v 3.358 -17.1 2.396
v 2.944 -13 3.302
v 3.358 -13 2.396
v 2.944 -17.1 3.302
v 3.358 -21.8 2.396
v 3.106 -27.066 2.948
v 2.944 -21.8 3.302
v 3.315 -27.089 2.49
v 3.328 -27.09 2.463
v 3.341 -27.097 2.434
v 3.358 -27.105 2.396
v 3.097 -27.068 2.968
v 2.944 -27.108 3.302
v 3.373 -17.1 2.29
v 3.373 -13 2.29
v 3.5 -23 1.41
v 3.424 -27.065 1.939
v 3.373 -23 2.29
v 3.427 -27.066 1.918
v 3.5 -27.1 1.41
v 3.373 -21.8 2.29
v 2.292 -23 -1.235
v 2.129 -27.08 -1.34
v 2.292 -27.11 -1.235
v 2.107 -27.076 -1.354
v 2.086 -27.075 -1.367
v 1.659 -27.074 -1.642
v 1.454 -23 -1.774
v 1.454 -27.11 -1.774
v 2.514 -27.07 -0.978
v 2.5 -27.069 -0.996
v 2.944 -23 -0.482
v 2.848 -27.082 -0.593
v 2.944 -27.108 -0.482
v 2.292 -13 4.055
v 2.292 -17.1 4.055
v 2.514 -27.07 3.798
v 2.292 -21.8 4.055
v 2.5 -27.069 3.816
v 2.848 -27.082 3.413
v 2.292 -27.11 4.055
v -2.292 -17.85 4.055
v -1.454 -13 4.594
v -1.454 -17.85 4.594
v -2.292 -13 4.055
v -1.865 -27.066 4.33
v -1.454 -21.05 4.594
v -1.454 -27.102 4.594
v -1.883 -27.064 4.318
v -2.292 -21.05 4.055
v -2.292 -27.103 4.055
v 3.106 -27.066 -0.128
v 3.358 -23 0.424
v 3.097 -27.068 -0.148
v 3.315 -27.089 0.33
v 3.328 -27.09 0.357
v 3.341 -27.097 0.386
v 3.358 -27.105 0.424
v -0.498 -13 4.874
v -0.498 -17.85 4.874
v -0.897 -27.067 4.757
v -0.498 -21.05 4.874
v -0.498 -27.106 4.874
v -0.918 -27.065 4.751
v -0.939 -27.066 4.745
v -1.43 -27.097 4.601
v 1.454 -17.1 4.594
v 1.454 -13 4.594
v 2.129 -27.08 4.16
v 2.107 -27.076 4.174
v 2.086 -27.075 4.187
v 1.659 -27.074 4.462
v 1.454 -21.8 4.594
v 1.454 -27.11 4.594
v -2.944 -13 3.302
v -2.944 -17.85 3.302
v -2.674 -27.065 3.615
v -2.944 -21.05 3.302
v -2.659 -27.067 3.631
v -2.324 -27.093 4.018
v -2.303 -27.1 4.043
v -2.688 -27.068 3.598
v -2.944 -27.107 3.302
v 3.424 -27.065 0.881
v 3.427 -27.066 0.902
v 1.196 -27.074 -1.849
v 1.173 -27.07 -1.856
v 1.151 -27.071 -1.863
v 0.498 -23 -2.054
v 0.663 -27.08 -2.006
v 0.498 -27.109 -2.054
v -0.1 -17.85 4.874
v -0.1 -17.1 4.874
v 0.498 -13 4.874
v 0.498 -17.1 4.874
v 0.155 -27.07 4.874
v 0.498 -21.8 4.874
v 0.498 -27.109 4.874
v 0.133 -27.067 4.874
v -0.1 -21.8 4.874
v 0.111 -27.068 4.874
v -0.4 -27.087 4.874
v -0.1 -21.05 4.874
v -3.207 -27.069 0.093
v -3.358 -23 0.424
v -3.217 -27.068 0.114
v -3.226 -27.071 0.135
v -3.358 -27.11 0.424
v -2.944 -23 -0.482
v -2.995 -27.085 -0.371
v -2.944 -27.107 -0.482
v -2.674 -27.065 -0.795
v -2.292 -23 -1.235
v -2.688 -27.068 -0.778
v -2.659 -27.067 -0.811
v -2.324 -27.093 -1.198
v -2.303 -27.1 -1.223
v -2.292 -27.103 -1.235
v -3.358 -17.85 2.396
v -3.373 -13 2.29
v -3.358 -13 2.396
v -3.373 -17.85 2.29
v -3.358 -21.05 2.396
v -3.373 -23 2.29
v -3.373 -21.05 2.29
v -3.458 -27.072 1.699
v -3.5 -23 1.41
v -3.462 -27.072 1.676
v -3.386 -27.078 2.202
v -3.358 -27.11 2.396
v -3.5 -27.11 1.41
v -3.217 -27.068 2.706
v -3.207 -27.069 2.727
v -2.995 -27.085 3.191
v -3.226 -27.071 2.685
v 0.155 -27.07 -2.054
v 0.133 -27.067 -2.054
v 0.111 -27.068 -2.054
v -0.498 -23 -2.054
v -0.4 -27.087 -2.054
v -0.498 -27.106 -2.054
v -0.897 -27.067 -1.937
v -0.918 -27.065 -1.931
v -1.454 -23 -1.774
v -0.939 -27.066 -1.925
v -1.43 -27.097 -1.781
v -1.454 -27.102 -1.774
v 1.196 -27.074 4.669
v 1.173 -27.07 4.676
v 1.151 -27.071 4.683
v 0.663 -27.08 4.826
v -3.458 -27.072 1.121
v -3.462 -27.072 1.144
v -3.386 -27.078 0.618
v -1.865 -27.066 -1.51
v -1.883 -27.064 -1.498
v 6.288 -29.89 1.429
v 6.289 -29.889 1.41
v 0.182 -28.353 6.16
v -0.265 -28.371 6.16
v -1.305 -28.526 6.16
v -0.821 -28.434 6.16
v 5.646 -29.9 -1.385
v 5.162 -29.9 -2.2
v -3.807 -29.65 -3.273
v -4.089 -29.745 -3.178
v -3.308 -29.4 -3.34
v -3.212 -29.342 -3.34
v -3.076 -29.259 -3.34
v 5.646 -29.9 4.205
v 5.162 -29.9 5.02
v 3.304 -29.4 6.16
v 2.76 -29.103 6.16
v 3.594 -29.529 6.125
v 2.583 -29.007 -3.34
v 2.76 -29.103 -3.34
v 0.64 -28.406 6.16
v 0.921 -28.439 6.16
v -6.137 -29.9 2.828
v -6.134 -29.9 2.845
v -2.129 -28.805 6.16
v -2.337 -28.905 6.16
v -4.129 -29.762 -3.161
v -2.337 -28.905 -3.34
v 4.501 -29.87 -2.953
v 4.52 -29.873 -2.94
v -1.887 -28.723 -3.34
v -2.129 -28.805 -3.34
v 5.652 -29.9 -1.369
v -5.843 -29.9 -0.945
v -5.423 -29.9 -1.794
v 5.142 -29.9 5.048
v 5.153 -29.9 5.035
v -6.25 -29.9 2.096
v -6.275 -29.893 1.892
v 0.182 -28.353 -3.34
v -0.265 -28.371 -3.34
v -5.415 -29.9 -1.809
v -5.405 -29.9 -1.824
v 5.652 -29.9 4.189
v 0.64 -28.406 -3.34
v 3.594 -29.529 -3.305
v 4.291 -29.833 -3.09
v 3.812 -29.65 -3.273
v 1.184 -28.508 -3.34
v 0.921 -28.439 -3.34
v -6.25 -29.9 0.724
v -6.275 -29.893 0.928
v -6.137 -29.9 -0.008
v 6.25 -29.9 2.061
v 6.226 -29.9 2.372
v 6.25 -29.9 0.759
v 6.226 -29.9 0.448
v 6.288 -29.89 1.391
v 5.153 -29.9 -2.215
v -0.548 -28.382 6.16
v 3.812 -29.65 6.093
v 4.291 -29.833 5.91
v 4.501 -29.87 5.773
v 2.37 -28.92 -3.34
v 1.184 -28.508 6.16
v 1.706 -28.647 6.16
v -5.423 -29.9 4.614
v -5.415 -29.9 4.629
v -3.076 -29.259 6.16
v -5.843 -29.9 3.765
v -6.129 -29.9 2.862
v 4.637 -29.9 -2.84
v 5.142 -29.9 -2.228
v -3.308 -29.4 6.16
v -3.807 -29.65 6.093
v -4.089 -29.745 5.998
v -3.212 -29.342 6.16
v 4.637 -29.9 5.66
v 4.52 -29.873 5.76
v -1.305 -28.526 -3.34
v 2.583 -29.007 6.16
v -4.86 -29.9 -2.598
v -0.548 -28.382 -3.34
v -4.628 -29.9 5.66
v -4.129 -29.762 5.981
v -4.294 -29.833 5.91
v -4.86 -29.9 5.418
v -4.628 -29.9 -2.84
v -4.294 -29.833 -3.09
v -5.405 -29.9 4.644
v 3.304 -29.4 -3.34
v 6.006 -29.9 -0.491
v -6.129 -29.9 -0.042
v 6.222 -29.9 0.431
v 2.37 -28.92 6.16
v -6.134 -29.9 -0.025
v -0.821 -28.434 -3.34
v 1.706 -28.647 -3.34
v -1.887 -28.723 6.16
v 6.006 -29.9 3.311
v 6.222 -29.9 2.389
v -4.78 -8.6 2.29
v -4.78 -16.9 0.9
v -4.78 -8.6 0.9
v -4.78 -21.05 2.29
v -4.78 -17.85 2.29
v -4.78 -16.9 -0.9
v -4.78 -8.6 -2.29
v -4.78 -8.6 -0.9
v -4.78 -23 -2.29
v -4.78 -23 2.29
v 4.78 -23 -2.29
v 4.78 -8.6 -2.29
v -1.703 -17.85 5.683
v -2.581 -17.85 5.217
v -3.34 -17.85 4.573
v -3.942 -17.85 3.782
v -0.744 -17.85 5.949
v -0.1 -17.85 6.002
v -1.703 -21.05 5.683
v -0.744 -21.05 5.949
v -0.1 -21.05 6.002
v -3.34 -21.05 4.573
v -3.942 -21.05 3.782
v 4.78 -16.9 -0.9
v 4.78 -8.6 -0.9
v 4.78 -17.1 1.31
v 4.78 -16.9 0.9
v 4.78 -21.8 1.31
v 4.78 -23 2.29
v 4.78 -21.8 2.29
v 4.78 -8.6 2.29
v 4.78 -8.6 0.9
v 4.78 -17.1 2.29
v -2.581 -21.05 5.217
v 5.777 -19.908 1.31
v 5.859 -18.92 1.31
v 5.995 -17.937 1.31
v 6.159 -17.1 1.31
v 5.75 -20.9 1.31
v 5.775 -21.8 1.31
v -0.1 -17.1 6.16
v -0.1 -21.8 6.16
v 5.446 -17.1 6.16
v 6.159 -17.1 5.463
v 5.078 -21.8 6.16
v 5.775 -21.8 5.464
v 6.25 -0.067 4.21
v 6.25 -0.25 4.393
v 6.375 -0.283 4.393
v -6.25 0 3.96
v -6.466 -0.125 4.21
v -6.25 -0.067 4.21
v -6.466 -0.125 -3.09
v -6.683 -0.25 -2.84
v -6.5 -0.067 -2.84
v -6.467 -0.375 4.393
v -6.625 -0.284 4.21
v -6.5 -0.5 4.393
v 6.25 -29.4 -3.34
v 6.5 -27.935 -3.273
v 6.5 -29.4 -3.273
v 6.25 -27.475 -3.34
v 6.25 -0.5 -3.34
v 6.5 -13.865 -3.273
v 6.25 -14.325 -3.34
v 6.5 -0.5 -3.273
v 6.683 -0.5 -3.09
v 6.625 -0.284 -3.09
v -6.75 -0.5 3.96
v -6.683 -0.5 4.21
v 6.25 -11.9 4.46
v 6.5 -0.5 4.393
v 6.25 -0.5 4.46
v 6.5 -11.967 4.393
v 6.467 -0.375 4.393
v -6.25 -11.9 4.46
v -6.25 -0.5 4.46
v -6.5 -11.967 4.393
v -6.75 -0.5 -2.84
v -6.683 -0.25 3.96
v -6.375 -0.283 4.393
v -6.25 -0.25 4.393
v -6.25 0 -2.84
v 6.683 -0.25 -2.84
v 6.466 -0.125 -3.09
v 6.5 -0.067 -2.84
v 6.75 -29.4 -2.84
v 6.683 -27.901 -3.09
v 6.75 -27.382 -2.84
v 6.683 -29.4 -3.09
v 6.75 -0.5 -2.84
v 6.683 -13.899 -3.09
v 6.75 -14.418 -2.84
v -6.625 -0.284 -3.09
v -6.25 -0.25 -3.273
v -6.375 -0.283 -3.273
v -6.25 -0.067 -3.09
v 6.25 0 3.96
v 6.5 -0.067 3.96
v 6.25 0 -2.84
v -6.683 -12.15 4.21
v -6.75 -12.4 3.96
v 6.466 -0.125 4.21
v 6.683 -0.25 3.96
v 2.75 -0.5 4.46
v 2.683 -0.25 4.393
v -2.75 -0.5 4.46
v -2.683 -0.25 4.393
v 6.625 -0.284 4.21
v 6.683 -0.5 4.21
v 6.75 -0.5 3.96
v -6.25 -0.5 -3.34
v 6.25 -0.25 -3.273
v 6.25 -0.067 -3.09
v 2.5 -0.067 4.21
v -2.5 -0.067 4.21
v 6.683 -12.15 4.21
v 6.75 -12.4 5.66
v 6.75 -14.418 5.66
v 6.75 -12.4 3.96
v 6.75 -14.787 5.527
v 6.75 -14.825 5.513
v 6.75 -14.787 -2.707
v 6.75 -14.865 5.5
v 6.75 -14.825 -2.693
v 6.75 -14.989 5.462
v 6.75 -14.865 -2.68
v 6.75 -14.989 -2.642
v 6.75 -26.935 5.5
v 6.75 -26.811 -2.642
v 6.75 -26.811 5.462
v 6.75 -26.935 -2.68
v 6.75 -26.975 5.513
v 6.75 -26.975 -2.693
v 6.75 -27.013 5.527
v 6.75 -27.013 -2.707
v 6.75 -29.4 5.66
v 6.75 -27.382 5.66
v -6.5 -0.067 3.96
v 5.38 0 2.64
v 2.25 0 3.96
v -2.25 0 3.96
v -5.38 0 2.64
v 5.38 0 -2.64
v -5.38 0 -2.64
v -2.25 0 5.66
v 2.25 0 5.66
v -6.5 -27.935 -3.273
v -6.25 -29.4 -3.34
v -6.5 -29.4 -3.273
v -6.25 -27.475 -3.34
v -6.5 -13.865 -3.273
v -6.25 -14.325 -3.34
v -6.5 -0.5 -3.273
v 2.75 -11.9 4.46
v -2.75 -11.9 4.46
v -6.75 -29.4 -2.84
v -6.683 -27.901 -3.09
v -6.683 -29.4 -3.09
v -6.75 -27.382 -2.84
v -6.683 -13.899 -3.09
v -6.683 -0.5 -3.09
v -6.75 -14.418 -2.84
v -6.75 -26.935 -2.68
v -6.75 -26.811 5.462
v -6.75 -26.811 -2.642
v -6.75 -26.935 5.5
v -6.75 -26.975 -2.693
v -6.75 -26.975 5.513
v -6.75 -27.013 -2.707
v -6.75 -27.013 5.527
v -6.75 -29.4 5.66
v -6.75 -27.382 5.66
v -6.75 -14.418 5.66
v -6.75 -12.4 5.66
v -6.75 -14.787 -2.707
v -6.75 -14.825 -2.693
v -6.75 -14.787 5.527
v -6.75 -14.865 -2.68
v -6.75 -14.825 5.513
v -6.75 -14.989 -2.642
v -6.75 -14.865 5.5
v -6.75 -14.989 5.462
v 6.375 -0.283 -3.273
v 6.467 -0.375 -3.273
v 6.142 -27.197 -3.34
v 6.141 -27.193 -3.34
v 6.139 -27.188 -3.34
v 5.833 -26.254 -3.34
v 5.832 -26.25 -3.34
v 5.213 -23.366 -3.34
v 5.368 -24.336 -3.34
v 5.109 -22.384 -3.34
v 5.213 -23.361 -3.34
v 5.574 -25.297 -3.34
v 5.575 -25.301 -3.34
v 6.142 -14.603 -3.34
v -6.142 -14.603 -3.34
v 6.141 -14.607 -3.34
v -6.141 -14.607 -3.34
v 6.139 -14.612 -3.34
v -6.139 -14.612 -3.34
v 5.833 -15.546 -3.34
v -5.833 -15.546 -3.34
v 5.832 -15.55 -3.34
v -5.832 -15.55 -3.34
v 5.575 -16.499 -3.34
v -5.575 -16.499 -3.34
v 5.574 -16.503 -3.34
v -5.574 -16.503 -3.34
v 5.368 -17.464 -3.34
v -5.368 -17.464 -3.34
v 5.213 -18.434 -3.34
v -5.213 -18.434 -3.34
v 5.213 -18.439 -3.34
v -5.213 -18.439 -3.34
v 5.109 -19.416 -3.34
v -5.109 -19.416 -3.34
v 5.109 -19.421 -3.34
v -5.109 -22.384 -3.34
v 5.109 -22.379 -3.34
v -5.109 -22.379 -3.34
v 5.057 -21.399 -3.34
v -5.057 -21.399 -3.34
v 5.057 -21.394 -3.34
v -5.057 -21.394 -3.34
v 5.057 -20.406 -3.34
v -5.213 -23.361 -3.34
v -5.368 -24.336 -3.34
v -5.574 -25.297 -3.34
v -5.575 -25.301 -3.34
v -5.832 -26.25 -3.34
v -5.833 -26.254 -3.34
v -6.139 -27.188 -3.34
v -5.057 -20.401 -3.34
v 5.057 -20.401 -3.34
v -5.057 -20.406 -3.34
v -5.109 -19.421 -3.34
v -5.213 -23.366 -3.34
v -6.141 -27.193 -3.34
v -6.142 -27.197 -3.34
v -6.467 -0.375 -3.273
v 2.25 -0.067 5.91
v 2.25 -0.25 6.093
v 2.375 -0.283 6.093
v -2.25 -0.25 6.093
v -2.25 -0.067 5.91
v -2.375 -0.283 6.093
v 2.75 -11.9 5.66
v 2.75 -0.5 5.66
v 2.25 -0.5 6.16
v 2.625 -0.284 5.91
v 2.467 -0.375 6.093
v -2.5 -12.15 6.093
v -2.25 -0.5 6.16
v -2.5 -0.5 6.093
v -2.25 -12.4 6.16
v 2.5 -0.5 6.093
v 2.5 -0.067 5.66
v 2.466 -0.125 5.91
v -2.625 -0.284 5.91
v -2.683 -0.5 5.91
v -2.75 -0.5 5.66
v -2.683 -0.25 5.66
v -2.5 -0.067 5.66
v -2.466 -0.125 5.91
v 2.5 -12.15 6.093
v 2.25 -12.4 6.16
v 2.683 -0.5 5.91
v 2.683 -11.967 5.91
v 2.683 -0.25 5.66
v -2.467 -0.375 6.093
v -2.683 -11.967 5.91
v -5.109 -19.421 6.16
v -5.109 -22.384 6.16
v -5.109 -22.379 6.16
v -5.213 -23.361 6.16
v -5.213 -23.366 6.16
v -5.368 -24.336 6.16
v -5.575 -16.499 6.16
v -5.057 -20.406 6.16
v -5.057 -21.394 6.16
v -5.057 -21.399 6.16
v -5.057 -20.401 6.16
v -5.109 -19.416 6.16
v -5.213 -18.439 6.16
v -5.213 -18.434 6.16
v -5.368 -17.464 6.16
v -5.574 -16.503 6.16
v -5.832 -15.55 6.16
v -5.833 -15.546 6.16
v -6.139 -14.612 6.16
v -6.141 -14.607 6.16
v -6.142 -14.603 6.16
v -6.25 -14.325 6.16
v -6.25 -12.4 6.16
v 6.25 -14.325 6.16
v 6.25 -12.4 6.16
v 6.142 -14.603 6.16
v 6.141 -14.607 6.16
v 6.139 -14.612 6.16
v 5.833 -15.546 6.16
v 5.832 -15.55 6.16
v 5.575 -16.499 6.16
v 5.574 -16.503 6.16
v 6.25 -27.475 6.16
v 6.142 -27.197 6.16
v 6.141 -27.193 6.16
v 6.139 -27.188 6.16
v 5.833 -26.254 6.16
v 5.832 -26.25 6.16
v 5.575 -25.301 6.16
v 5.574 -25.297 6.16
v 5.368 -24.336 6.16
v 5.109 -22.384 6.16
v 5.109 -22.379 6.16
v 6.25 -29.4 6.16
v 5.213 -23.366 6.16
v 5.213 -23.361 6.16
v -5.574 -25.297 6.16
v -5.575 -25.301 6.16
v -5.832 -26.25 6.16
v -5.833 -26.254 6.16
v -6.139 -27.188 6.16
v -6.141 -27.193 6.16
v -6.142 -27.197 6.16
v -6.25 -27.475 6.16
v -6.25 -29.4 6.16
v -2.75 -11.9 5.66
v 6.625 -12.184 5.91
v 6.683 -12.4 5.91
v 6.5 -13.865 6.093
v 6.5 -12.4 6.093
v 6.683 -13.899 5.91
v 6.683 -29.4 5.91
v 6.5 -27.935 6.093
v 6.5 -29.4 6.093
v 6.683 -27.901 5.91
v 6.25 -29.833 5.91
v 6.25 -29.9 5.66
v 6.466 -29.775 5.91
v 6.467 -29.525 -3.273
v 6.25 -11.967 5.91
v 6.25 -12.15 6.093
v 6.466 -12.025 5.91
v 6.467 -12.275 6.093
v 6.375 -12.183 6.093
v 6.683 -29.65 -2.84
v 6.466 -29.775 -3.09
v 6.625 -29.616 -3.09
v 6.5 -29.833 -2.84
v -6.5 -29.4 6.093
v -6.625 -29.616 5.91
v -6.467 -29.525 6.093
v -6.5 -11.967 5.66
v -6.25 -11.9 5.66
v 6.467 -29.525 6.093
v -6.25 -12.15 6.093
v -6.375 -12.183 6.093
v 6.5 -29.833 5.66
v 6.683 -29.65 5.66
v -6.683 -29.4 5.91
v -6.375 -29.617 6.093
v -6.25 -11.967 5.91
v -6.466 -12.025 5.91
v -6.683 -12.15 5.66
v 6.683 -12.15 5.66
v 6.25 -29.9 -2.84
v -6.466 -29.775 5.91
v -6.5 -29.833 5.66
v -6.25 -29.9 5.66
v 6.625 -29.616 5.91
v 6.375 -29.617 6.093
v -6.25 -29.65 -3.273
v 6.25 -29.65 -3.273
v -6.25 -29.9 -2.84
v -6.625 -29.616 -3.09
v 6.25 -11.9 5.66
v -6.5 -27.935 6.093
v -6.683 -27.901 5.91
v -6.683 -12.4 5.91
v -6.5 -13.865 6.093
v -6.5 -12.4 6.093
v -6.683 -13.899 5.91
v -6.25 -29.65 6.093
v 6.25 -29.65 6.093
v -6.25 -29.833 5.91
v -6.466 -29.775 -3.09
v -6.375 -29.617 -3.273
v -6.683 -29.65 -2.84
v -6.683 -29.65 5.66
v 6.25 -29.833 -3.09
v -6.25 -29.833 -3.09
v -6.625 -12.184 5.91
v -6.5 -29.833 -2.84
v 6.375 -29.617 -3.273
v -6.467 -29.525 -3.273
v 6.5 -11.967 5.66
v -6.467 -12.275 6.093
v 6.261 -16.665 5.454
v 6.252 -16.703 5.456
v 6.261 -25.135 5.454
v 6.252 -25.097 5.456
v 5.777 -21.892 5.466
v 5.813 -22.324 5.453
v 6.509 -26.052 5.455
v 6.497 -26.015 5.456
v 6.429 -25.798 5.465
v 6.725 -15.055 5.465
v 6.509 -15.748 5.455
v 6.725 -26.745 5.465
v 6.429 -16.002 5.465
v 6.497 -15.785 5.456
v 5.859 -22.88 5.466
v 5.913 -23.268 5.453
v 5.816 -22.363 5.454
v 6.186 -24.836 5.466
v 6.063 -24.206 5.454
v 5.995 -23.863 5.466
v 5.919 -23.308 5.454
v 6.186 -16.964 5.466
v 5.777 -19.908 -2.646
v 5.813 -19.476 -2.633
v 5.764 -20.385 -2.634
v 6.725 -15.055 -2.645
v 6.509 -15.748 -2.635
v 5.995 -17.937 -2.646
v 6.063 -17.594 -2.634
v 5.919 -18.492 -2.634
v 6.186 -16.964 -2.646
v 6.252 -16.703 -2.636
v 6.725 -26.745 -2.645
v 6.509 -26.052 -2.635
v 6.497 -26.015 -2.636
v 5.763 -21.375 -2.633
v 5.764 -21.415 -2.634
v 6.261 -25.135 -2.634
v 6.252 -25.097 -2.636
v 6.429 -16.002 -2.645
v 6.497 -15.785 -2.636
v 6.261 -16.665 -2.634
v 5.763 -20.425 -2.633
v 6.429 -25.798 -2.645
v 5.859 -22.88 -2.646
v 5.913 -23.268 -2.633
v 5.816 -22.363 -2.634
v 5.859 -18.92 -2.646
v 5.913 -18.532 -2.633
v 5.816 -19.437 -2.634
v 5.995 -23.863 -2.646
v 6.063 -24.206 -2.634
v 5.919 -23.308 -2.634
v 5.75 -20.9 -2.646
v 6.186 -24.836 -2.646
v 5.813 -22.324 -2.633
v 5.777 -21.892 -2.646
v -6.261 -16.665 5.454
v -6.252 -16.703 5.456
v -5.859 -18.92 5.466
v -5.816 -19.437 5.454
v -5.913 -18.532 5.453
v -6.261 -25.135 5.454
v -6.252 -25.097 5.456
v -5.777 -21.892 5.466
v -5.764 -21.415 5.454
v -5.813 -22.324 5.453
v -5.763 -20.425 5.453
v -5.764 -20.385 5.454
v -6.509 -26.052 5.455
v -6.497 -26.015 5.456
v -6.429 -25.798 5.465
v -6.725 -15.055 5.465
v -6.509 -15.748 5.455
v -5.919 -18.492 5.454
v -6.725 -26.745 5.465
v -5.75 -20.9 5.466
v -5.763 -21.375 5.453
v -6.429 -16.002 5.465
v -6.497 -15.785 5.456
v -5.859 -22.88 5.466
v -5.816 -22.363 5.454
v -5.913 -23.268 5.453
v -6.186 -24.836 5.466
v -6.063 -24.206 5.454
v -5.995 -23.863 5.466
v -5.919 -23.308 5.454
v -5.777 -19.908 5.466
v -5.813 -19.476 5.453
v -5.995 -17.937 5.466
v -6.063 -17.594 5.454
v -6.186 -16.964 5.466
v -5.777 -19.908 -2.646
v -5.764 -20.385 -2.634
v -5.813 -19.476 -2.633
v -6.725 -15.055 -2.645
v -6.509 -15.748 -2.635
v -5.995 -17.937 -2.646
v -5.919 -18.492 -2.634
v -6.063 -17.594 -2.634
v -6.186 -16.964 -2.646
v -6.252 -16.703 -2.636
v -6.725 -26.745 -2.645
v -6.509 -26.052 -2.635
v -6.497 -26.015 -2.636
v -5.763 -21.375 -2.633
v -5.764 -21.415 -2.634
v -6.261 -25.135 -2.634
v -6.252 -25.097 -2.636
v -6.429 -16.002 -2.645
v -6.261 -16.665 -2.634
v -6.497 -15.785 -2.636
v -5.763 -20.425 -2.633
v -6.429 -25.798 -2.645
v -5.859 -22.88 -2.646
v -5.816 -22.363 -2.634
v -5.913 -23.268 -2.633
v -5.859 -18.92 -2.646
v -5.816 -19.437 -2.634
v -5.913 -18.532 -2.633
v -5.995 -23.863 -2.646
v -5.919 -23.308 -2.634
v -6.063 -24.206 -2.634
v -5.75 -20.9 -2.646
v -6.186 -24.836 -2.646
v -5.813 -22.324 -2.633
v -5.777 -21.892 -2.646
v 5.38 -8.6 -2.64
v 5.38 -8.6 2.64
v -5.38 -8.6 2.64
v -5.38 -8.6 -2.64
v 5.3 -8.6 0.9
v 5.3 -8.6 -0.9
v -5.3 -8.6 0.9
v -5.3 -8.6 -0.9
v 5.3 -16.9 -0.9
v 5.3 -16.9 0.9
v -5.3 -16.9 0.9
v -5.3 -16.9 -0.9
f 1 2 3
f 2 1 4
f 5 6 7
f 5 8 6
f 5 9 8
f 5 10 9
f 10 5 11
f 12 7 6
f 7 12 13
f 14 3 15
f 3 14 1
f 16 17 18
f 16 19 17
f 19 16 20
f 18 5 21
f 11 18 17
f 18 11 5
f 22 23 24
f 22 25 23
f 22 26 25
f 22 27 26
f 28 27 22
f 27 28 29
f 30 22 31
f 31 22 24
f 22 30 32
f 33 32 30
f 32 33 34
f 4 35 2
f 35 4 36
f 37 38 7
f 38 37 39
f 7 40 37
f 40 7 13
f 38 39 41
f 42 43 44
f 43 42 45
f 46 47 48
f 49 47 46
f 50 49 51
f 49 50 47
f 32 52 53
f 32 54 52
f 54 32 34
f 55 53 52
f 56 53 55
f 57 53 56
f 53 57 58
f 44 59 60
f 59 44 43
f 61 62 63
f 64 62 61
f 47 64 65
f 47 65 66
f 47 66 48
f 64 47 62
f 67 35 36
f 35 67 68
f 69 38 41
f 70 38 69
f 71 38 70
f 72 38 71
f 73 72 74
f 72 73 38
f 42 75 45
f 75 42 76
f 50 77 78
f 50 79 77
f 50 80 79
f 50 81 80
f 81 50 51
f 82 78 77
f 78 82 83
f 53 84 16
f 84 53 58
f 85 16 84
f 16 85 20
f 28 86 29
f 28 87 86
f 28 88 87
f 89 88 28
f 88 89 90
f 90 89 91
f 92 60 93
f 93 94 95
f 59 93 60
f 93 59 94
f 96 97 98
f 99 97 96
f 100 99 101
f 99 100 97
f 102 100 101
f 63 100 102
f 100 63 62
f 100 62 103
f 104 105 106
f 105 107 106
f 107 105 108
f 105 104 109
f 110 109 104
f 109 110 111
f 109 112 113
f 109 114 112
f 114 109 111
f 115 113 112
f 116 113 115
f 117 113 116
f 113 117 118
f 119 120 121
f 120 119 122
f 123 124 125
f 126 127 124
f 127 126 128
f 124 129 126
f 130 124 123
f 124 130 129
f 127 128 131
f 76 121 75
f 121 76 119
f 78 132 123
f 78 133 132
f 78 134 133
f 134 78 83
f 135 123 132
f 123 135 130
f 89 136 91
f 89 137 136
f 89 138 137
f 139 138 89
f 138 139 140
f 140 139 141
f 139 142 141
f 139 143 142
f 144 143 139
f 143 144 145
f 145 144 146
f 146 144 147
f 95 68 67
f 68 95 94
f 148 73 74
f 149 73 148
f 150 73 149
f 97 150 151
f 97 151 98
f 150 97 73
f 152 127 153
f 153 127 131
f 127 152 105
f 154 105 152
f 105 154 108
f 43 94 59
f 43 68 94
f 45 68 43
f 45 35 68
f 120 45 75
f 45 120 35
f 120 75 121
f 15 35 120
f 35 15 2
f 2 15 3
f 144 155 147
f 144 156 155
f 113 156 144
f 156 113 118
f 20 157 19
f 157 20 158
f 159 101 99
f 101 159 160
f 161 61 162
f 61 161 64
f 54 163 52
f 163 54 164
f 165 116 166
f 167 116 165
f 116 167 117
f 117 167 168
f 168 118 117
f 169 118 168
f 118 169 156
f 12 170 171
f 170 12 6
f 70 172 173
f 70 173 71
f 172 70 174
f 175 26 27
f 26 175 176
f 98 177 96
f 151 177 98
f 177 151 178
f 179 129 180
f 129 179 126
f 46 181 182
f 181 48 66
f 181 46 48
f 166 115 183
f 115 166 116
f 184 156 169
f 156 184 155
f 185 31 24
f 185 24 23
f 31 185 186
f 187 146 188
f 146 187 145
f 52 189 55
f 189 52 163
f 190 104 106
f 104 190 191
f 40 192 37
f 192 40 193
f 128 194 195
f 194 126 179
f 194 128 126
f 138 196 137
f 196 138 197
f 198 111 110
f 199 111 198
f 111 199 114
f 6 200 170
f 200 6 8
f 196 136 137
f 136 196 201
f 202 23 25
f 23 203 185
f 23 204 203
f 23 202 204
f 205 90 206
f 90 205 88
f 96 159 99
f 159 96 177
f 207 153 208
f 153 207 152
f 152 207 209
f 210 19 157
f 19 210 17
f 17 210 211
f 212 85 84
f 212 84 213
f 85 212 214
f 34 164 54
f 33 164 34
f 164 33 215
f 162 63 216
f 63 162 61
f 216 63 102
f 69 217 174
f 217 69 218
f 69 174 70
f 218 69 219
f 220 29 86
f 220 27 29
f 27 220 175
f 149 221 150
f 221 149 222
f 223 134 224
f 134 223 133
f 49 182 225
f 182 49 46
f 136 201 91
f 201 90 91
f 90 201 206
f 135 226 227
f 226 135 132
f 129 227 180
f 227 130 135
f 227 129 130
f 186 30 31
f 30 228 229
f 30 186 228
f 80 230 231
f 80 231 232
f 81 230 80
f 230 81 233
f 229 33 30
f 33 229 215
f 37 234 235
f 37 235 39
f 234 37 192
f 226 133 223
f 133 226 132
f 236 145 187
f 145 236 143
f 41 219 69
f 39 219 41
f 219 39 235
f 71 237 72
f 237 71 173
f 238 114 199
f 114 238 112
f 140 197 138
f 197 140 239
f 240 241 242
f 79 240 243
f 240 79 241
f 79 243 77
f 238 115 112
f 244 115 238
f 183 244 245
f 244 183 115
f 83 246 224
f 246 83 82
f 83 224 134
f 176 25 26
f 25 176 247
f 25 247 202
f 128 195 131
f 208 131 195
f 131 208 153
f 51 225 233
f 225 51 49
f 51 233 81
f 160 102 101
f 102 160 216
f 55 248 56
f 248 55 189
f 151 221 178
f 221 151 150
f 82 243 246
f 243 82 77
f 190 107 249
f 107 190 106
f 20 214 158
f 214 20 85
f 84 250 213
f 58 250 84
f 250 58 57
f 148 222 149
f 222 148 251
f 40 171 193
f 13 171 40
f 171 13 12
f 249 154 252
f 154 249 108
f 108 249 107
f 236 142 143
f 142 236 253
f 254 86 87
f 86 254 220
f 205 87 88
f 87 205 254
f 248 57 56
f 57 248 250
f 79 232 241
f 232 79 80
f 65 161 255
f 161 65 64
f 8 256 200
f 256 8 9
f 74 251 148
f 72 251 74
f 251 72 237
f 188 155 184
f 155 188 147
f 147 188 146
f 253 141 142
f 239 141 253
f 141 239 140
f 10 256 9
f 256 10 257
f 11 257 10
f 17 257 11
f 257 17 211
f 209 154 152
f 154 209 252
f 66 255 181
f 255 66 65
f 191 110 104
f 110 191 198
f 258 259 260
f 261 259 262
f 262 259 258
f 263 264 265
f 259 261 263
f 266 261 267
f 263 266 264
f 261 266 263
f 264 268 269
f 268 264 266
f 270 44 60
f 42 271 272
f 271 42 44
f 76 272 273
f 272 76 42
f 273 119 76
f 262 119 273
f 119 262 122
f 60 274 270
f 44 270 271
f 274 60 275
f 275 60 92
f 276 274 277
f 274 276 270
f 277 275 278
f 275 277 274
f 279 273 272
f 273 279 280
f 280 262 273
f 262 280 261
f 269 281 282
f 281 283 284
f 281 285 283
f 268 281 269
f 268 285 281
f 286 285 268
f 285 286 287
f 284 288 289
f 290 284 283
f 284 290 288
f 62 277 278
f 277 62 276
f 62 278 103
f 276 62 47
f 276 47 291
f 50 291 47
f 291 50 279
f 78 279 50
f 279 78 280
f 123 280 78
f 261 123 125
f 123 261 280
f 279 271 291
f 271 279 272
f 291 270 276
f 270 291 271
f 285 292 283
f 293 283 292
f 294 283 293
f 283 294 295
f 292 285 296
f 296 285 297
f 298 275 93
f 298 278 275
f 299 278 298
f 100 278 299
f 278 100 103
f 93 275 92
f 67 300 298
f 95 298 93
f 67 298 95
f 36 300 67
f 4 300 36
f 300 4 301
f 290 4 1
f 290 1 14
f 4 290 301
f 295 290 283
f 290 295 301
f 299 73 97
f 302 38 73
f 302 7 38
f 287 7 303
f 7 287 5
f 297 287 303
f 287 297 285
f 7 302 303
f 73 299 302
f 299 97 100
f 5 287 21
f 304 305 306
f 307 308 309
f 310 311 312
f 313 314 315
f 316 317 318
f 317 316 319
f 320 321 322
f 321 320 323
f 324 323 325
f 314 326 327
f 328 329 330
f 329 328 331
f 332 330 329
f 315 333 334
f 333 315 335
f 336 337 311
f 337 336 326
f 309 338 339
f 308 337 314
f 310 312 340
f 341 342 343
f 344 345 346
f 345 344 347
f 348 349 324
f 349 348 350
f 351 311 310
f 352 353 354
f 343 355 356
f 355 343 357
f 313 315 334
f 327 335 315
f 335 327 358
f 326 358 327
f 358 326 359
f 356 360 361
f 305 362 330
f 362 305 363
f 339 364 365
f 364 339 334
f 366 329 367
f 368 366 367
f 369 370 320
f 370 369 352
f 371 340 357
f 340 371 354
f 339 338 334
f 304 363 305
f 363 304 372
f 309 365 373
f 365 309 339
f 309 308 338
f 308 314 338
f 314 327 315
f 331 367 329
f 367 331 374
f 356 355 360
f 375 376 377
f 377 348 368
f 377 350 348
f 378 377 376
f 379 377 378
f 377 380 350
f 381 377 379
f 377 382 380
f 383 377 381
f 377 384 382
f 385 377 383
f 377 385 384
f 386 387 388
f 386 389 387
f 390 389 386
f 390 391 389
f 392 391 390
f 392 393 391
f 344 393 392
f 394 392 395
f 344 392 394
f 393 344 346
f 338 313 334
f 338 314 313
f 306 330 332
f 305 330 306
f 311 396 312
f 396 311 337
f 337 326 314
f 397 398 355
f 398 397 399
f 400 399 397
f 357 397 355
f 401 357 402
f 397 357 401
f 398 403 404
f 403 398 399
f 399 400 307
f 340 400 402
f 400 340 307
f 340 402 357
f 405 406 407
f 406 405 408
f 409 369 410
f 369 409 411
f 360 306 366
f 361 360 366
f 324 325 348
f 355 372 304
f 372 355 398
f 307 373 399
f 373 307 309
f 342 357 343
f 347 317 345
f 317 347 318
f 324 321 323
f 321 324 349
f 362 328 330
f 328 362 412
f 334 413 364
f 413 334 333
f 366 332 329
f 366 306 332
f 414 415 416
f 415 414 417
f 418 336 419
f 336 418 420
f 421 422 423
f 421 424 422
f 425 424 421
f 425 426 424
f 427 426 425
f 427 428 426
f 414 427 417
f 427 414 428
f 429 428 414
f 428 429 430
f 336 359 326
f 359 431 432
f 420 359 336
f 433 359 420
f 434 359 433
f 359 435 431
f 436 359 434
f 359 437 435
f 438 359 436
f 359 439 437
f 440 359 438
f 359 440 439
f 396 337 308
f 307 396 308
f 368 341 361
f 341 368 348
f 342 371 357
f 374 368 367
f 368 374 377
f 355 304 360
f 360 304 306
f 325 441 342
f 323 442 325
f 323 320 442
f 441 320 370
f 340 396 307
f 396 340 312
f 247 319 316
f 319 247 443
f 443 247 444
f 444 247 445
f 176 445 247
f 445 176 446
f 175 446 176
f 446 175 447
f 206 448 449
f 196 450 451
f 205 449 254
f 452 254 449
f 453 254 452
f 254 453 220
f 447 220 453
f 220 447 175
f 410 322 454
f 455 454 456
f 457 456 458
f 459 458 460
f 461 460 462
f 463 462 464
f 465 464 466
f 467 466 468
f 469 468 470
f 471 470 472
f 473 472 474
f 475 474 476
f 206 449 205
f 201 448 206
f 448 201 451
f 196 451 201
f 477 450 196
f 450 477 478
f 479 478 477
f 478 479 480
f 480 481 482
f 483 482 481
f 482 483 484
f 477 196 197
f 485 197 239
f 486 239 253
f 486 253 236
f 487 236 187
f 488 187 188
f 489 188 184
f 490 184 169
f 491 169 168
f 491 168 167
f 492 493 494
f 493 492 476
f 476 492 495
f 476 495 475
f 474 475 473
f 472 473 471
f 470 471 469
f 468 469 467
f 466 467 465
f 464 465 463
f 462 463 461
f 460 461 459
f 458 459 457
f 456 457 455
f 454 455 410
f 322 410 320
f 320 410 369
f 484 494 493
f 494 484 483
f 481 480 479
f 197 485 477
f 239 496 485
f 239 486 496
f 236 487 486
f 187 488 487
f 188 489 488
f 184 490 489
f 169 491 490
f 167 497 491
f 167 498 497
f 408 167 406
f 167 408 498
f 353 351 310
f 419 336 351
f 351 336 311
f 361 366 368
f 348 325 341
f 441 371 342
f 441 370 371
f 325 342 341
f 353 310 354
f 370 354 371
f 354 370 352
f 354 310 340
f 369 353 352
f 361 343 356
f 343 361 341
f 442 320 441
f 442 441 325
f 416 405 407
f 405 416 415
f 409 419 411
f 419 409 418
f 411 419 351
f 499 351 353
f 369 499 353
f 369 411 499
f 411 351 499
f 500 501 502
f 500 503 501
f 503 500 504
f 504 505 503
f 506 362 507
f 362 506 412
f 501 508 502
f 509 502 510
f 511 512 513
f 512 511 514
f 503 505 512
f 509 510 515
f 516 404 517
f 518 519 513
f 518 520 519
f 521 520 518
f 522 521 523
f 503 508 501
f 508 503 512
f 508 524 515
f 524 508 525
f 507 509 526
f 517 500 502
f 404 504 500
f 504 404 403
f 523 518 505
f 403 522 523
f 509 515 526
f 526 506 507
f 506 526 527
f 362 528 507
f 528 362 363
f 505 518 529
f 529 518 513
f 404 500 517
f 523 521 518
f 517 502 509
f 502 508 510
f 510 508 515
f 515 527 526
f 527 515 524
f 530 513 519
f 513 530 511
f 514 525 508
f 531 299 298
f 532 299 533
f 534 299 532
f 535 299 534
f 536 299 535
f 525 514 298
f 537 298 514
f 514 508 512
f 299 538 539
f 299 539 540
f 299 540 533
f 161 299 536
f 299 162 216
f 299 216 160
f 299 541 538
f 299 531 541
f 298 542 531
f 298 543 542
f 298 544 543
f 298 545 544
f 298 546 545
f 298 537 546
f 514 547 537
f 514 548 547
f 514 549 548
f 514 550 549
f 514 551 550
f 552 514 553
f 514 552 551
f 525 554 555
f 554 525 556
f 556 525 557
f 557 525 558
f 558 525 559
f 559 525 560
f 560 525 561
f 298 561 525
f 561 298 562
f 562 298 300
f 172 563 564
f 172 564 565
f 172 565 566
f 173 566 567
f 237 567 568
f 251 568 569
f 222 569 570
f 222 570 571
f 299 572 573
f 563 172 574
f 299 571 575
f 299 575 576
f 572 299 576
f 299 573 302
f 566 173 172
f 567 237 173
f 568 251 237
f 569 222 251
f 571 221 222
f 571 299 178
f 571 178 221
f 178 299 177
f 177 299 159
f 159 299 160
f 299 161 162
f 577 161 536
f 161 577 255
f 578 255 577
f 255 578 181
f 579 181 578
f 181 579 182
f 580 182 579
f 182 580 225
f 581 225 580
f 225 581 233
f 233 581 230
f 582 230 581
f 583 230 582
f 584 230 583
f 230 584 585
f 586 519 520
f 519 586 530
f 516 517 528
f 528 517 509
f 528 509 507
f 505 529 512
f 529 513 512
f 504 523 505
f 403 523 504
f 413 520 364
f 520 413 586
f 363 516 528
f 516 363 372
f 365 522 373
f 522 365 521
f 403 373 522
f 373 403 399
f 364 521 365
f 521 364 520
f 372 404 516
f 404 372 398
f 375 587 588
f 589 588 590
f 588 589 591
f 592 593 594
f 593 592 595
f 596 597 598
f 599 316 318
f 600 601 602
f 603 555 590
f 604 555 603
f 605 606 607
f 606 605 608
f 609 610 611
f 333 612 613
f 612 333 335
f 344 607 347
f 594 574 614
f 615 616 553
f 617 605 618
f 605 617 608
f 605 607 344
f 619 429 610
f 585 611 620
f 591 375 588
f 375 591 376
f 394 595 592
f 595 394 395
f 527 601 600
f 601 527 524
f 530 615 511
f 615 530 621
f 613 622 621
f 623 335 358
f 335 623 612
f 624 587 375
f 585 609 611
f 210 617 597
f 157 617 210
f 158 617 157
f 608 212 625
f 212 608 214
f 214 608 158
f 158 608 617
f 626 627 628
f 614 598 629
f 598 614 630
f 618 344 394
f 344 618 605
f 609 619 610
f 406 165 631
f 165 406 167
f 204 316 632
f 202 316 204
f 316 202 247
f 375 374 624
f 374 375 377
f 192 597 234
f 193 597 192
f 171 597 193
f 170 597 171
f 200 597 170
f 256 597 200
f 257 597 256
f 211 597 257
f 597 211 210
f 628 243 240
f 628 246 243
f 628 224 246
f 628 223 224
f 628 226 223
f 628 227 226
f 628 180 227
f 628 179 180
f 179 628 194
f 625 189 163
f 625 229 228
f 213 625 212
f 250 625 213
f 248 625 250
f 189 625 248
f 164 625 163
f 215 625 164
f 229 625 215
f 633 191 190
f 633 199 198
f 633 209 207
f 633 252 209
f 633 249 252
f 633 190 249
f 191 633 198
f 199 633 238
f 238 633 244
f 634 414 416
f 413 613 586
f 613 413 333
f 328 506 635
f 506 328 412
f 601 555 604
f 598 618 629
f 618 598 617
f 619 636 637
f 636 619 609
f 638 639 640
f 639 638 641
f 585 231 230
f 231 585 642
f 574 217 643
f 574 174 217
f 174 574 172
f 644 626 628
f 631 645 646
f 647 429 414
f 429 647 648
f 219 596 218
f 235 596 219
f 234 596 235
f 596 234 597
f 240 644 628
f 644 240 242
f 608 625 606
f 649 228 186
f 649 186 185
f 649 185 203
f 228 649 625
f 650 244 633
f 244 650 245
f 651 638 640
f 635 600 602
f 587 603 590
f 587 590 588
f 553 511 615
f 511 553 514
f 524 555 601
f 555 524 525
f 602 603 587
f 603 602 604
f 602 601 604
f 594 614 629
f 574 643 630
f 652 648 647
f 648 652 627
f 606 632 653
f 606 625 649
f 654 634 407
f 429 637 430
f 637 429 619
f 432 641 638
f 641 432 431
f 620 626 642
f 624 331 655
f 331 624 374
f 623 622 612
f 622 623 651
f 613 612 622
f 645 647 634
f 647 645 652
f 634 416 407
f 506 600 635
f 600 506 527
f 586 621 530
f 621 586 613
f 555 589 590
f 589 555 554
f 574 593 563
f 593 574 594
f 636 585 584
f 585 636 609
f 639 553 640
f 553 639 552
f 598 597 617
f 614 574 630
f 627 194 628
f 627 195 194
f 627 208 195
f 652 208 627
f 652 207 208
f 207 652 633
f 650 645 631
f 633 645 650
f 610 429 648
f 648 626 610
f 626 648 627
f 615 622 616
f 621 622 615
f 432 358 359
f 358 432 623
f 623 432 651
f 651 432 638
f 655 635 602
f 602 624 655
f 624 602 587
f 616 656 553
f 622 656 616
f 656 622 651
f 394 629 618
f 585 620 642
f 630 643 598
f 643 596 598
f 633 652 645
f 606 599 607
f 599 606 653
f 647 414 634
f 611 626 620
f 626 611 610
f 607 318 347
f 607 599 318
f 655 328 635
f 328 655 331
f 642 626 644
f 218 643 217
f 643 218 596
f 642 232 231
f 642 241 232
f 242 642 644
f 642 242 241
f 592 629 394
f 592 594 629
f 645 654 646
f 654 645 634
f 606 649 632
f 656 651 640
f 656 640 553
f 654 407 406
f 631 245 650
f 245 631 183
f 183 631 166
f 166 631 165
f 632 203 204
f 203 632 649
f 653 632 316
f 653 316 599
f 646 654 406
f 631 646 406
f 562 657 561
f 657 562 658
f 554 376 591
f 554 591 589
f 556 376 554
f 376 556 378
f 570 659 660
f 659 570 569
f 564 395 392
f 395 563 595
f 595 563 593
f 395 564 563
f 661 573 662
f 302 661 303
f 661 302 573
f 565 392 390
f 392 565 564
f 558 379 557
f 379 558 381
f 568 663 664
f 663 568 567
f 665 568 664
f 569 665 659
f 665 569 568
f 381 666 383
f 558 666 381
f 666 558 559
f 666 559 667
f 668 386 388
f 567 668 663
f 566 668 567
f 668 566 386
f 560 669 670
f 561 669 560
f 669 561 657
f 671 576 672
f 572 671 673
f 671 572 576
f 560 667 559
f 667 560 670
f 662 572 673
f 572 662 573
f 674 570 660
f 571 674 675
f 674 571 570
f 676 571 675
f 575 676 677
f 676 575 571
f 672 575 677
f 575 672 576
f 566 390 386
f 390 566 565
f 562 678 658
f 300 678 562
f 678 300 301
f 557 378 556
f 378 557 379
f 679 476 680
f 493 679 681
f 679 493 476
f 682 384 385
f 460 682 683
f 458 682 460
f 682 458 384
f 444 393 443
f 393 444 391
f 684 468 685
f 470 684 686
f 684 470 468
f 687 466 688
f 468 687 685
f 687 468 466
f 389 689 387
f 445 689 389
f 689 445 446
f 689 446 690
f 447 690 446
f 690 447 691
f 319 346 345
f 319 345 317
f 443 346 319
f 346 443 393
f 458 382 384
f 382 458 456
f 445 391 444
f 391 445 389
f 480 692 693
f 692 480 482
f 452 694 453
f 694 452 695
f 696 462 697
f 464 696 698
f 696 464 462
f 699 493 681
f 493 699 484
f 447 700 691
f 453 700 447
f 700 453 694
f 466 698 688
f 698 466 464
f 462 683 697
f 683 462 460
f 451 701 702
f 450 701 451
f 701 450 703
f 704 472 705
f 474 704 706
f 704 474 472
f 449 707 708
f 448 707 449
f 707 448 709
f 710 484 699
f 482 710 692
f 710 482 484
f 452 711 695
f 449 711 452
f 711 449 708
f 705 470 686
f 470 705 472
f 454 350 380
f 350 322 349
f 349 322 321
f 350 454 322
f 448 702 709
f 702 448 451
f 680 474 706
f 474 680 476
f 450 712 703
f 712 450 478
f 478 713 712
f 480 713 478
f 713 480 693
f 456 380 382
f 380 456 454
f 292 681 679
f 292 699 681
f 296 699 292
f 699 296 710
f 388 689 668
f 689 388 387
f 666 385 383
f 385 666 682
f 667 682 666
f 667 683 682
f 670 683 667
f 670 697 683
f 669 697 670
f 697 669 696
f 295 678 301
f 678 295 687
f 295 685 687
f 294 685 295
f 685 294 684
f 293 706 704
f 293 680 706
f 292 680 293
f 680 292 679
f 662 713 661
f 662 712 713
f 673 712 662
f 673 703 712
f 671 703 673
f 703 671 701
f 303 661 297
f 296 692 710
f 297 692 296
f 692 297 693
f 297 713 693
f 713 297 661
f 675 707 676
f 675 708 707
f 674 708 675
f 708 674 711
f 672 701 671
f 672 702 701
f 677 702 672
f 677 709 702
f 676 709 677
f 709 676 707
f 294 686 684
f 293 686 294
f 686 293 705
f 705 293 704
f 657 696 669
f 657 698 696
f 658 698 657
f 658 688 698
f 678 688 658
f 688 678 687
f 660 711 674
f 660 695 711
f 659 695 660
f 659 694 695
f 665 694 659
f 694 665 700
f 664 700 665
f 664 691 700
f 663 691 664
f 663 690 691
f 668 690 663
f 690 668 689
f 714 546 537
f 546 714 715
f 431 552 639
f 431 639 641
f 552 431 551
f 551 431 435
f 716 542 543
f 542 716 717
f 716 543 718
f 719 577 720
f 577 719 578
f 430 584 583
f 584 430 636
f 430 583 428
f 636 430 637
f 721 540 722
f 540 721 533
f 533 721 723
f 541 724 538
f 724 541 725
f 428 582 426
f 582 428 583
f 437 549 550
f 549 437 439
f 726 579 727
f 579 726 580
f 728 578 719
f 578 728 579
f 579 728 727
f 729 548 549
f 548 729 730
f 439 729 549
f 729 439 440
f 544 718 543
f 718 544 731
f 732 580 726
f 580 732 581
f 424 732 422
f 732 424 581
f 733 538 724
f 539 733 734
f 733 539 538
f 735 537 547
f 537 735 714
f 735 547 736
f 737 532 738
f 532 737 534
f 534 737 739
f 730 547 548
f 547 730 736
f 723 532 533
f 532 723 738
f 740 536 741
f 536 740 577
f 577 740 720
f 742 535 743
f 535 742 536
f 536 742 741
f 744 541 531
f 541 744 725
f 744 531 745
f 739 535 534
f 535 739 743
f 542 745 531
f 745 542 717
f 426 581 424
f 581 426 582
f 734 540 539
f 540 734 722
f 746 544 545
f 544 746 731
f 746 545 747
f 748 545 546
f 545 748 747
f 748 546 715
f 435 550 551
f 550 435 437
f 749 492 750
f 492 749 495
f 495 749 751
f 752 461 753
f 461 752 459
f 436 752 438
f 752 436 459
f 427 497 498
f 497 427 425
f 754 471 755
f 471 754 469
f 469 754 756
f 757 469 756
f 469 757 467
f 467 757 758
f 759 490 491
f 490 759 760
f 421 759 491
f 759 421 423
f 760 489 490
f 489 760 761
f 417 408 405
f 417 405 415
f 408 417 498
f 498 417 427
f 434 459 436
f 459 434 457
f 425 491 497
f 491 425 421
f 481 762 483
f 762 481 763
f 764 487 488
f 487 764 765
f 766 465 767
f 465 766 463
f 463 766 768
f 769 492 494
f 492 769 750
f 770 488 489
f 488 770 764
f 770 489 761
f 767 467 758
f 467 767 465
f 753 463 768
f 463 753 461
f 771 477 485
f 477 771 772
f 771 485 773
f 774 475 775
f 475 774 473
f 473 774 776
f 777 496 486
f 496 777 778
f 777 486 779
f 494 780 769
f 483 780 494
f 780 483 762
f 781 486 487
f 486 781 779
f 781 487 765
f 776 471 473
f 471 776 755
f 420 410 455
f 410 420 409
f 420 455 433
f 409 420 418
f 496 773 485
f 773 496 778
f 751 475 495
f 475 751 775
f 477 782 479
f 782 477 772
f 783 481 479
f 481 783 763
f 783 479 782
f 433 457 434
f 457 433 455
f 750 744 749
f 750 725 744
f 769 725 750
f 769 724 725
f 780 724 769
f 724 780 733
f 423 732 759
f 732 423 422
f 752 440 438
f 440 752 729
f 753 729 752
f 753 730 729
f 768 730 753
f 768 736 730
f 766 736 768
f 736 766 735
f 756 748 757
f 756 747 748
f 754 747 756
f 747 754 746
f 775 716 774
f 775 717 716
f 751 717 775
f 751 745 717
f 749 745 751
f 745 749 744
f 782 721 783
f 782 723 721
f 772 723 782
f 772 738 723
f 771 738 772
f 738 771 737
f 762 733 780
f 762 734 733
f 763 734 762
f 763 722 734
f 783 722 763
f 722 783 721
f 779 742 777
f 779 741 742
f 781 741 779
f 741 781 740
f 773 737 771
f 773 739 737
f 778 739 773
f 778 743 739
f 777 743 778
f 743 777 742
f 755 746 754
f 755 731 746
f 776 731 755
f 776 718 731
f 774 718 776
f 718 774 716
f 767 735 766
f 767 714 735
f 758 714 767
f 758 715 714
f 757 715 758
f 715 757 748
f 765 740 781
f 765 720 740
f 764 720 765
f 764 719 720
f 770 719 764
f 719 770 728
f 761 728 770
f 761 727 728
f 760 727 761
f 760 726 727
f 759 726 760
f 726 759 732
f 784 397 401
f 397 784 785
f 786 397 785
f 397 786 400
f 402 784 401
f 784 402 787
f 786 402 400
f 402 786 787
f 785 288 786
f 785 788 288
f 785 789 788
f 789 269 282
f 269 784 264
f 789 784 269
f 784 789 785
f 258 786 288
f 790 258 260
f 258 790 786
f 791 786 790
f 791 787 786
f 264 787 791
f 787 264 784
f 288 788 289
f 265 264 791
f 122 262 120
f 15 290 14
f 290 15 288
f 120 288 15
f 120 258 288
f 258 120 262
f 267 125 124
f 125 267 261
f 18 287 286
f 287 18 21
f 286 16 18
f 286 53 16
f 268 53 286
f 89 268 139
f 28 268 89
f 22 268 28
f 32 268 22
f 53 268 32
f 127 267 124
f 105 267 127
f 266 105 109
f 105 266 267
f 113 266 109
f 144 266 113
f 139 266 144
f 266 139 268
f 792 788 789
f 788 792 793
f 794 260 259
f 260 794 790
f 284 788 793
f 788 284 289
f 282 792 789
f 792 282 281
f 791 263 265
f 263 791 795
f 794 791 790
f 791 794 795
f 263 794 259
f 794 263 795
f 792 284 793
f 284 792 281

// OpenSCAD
// file: handy.scad
// b.kenyon.w@gmail.com - handy box
// fillets and handy things made from fillets

/*
   screw_post(h=10,od=6,id=3,fr=2,ch=0,o=0)

     cylindrical screw post with filleted base

     h = height
     od = main cylinder OD
     id = screw hole ID - default no hole
     fr = base fillet radius
     ch = screw hole chamfer depth - default no chamfer
     o = fillet ID shrink offset - usually unset

   rounded_cube(w=60,d=40,h=20,rh=2,rv=1,t=0)

     cube with rounded corners, optionally hollow

     w = width
     d = depth
     h = height
     rh = horizontal radius
     rv = vertical radius
     t = wall thickness - if set, makes a hollow box

   fillet_polar(o=false,R=1,r=1,A=90,a=90,as=0)

     creates both internal and external radial fillets
     used to create screw_post() and rounded_cube()
  
     o = outside true/false - default false (inside/concave)
     R = big radius
     r = small radius
     A = big angle
     a = small angle
     as = small angle start angle

   fillet_linear(o=false,l=1,r=1,a=90)
   
     o = outside - true/false - default false (inside/concave)
     l = length
     r = radius
     a = angle

*/

//$fs = 0.5;
//$fa = 1;
//$fn = 96;
//$fn = 72;
//$fn = 36;
//$fn = 12;

// examples:
//translate([60,0,0]) screw_post(h=10,od=6,id=3,fr=2,ch=0.6);
//difference() { rounded_cube(w=70,d=55,h=25,rh=3,rv=1,t=2); translate([0,-40,0]) cube([40,40,20]); }
//difference() { rounded_cube(w=70,d=55,h=25,rh=3,rv=1); translate([0,-40,0]) cube([40,40,20]); }
//fillet_linear(l=40);
//fillet_polar(R=2,r=1);

module screw_post(h=10,od=6,id=0,fr=2,o=0,ch=0) {
 x = (o) ? o : ($fn>=3) ? 0 : 0.025;
 difference() {
  union(){
   translate([0,0,h/2]) cylinder(h=h,d=od,center=true);
   translate([0,0,fr+x]) fillet_polar(R=-od/2+x,r=fr+x,A=360,as=90);
  }
  if(id>0) {
   translate([0,0,h/2]) cylinder(h=h+0.1,d=id,center=true);
   if(ch) translate([0,0,h-id/2-ch]) cylinder(h=od/2,d1=0,d2=od);
  }
 }
}

module rounded_cube(w=60,d=40,h=20,rh=2,rv=1,t=0) {
  if(t) difference() {
   _hbrc(w=t+w+t,d=t+d+t,h=t+h+t,rh=rh+t,rv=rv+t);
   _hbrc(w=w,d=d,h=h,rh=rh,rv=rv);
  }
  else _hbrc(w=w,d=d,h=h,rh=rh,rv=rv);
}

module _hbrc(w=60,d=40,h=20,rh=2,rv=1) {
 hull() {
  mirror_copy([0,0,1])
   mirror_copy([0,1,0])
    mirror_copy([1,0,0])
     translate([w/2-rh,d/2-rh,h/2-rv])
      fillet_polar(o=true,R=rh,r=rv);
 }
}

module fillet_polar(o=false,R=1,r=1,A=90,a=90,as=0) {
 rotate_extrude(angle=A)
  translate([R-r,0,0])
   rotate([0,0,-as])
    _hbf(o,r,a);
}

module fillet_linear(o=false,l=1,r=1,a=90) {
 linear_extrude(height=l,center=false)
  _hbf(o,r,a);
}

// D or bathtub shaped cube with 2 corners rounded
module D (w=10,d=10,h=1,r=2) {
  hull() {
   translate([0,r/2,0])
    cube([w,d-r,h],center=true);
   mirror_copy([1,0,0])
    translate([w/2-r,-d/2+r,0])
     cylinder(h=h,r=r,center=true);
  }
}

module _hbf(o=false,r=1,a=90) { // 2d fillet
 if(o) intersection() { circle(r=r); _hbw(r=r,a=a); }
 else difference() { _hbw(r=r,a=a); circle(r=r); }
}

module _hbw (r=1,a=90) { // 2d wedge polygon
  polygon([ [0,0], [0,r], [r*tan(a/2),r], [r*sin(a),r*cos(a)] ]);
}

module mirror_copy(v) {
 children();
 mirror(v) children();
}
// main file
/*
 * Plug housing for TPDD_Cable
 * v001
 */

t = 2.54; // tenth inch
o = 0.1;  // overlap / overcut
fc = 0.1; // fitment clearance 0.1 for SLS, 0.2 for FDM
w = 0.8;  // min wall
cr = 0.5; // corner radii
$fa = 1;
$fs = 1;

ph = 1.6;  // pcb thickness
pw = 10.4; // pcb width
psl = 8.5;  // pcb slot length, starting at id

owl = 13.5;    // outer width low, horzontal part width
ohl = 7.8;     // outer height low, horizontal part height
owh = 5.5;     // outer width high, vertical part width
ohh = 9.5;     // outer height high, vertical part height
plug_len = 12; // length of keyed part - automatically adjusted +1 if handle (hh) is taller than plug (ohh)
iw = t*4+0.4;  // inner width, width of 2x4 connector
ih = t*2;      // inner height, height of 2x4 connector
id = 8.5;      // inner depth, depth of 2x4 connector

ohb = ih/2+ph/2;   // outer height bottom, 0 to exterior floor

hew = 0;           // handle extra width
heh = hew;         // handle extra height
hw = hew+owl+hew ; // handle width
hd = 18;           // handle depth

// Different parametric relationships
// between the cable, handle, pcb, and connector.

// -- option 1 ------
// * handle height based on vertical key height
// * cable center based on pcb
// neither handle adjusts to cable nor cable adjusts to handle
// cable is allowed to be off-center
//hh = ohh+hew;   // handle height
//hz = hh/2-ohb;  // handle center Z
//cd = 6;         // cable diam, including heat shrink
//cz = cd/2+ph/2; // cable bottom at pcb top
// --------------

// -- option 2 ------
// * handle height based on vertical key height
// * cable centered in handle
// Cable diameter enlarged to allow fit with some squish.
// Cable is really about 6mm, but full circle is not available,
// so 6mm cable deforms into 70% section of 7mm hole.
hh = ohh+heh;  // handle height
hz = hh/2-ohb; // handle center z
cz = hz;       // cable center z
cd = 7;        // cable diameter, including heat shrink and squish
// ------------------

// -- option 3 ------
// * cable location based on pcb
// * handle height based on cable center to floor, doubled to make cable come out centered
// makes a very tall handle but cable is centered without squishing
//cd = 6; // cable diam, including heat shrink
//cz = cd/2+ph/2;   // cable bottom at pcb top
//hz = cz;
//hh = (cz+ohb)*2;
// ------------------

zbw = 3; // zip tie band width
zbt = 1; // zip tie band thickness
zy = id + 10.95; // zip tie Y position
ztk = 4.5; // zip tie knot cube

cew = 1; // cable end wall thickness
cfd = 3; // cable funnel depth

gr = hd;        // grip cut radius
gd = (hew<1)?1+hew:1.5; // grip cut depth

ihr = 0.5; // interior height reduction
iwr = 1; // interior width reduction

ich = ih-ihr ;
icw = iw-iwr ;
icd = 23;

// if handle height is taller than vertical key
// then add 1mm to plug length so handle clears
// the step around the port
od = plug_len + (hh>ohh?1:0);

// =============================================================

use <handy.scad>

if ($preview) translate([0,-6.6-id-fc,-ph/2]) %import("pcb.stl");

difference() {
    union() {
      // extend plug body by 2*cr+o into handle body
      // to fill in creases 
      xod = od + cr*2+o;

      // horizontal
      translate([0,-xod/2,ohl/2-ohb])
        rounded_cube(w=owl,d=xod,h=ohl,rh=cr,rv=cr,t=0,$fn=12);

      // vertical
      translate([0,-xod/2,ohh/2-ohb])
        rounded_cube(w=owh,d=xod,h=ohh,rh=cr,rv=cr,t=0,$fn=12);

      // handle
      translate([0,-od-hd/2+o,hz])
        rounded_cube(w=hw,d=hd,h=hh,rh=cr,rv=cr,t=0,$fn=12);
    }
  union() {
    // connector cavity
    translate([0,o-id/2-fc,0]) cube([fc+iw+fc,o+id+fc,fc+ih+fc],true);

    // main wiring/components interior cavity    
    translate([0,-icd/2,0]) cube([icw,icd,ich],true);

    // pcb slot
    translate([0,-psl/2-id+o,0]) cube([fc+pw+fc,psl,fc+ph+fc],true);

    // cable
    translate([0,0,cz]) {
      translate([0,-hd/2-od-cew,0]) rotate([90,0,0]) cylinder(h=hd,r=cd/2,center=true);
      // funnel
      fr1 = cd/2-o;  // truncated cone small end is cable diam
      fr2 = fr1+cfd; // big end is small end plus length to make 45 degrees
      translate([0,cfd/2-od-hd,0]) rotate([90,0,0]) cylinder(h=cfd,r1=fr1,r2=fr2,center=true);
    }

    // grips
    go = gr+hw/2-gd; // offset
    gch = o+hh+o; // grip cut cyl height
    gcs = 0.8; // grip chamfer size
    mirror_copy([1,0,0])
      translate([go,-od-hd/2+o,hz]) {
        cylinder(h=gch,r=gr,center=true);
        mirror_copy([0,0,1])
          cylinder(h=gch,r1=gr-gch+gcs,r2=gr+gcs,center=true);
      }

    // zip tie
    ztr = cd/2+zbt+fc;
    translate([0,-zy,0]) {
      // band cavity
      // top half of band cavity is cylinder centered on cable
      // bottom half is cube that extends to the inside floor
      // bottom of cylinder is cut to prevent cutting into floor
      // cube & cyl hulled to make smooth transition up side wall from floor to arch
      bcl = fc+zbw+fc; // band cavity length
      hull () {
        difference() {
          translate([0,0,cz]) rotate([90,0,0]) cylinder(h=bcl,r=ztr,center=true);
          cs = o+ztr*2+o; // cube to cut the bottom off the band cylinder
          translate([0,0,-cs/2-ph/2-zbt]) cube(cs,true);
        }
        // cube bottom half of band
        // this allows tie to push up the far side wall into the top curve
        translate([0,0,ich/2-ih/2+ihr/2]) cube([icw,bcl,ich],true);
        // cube head corner of band
        // this allows the tie to be inserted straight down the near wall
        translate([icw/4,0,ztr/2+cz]) cube([icw/2,bcl,ztr],true);
      }
      // head
      ztc = fc+ztk+fc; // ziptie head cavity cube
      // if the ceiling above the head cube is less than
      // min-wall-thickness, then increase the height of
      // the cube to cut out the ceiling
      toh = hh-ohb;    // top of handle
      tob = cz+ztr;    // top of band
      tw = toh-tob;    // top wall thickness
      zta = (tw<w) ? tw+o : 0; // ziptie head height, adjusted
      // zta is only used to increase the height to poke through the top
      // and intentionally not included in the z-translation
      // so the bottom of the cube is always at the same height
      translate([-fc,-ztk/2-fc,-ztc+cz+ztr]) cube([hw/2+o+fc,ztc,ztc+zta]);
    }


    //===========================================================
    // DEBUGGING
    // cut away to see while drawing

    // cut on X
    if (false && $preview) {
      cutx = 0;  // where to cut along X
      csh=o+hh+o;
      csd=o+od+hd+o;
      csw=hw/2-cutx+o;
      translate([-csw/2-cutx,-csd/2+o,hz]) #cube([csw,csd,csh],true);
    }

    // cut on Y
    if (false && $preview) {
      cuty = zy;  // where to cut along Y
      csh=o+hh+o;
      csw=o+hw+o;
      csd=od+hd-cuty+o;
      translate([0,-csd/2-cuty,hz]) #cube([csw,csd,csh],true);
    }

    // cut on Z
    if (false && $preview) {
      cutz = 0;  // where to cut along Z
      csd=o+od+hd+o;
      csw=o+hw+o;
      csh=hh-ohb-cutz+o;
      translate([0,-csd/2+o,csh/2+cutz]) cube([csw,csd,csh],true);
    }


    //===========================================================

  }
}
